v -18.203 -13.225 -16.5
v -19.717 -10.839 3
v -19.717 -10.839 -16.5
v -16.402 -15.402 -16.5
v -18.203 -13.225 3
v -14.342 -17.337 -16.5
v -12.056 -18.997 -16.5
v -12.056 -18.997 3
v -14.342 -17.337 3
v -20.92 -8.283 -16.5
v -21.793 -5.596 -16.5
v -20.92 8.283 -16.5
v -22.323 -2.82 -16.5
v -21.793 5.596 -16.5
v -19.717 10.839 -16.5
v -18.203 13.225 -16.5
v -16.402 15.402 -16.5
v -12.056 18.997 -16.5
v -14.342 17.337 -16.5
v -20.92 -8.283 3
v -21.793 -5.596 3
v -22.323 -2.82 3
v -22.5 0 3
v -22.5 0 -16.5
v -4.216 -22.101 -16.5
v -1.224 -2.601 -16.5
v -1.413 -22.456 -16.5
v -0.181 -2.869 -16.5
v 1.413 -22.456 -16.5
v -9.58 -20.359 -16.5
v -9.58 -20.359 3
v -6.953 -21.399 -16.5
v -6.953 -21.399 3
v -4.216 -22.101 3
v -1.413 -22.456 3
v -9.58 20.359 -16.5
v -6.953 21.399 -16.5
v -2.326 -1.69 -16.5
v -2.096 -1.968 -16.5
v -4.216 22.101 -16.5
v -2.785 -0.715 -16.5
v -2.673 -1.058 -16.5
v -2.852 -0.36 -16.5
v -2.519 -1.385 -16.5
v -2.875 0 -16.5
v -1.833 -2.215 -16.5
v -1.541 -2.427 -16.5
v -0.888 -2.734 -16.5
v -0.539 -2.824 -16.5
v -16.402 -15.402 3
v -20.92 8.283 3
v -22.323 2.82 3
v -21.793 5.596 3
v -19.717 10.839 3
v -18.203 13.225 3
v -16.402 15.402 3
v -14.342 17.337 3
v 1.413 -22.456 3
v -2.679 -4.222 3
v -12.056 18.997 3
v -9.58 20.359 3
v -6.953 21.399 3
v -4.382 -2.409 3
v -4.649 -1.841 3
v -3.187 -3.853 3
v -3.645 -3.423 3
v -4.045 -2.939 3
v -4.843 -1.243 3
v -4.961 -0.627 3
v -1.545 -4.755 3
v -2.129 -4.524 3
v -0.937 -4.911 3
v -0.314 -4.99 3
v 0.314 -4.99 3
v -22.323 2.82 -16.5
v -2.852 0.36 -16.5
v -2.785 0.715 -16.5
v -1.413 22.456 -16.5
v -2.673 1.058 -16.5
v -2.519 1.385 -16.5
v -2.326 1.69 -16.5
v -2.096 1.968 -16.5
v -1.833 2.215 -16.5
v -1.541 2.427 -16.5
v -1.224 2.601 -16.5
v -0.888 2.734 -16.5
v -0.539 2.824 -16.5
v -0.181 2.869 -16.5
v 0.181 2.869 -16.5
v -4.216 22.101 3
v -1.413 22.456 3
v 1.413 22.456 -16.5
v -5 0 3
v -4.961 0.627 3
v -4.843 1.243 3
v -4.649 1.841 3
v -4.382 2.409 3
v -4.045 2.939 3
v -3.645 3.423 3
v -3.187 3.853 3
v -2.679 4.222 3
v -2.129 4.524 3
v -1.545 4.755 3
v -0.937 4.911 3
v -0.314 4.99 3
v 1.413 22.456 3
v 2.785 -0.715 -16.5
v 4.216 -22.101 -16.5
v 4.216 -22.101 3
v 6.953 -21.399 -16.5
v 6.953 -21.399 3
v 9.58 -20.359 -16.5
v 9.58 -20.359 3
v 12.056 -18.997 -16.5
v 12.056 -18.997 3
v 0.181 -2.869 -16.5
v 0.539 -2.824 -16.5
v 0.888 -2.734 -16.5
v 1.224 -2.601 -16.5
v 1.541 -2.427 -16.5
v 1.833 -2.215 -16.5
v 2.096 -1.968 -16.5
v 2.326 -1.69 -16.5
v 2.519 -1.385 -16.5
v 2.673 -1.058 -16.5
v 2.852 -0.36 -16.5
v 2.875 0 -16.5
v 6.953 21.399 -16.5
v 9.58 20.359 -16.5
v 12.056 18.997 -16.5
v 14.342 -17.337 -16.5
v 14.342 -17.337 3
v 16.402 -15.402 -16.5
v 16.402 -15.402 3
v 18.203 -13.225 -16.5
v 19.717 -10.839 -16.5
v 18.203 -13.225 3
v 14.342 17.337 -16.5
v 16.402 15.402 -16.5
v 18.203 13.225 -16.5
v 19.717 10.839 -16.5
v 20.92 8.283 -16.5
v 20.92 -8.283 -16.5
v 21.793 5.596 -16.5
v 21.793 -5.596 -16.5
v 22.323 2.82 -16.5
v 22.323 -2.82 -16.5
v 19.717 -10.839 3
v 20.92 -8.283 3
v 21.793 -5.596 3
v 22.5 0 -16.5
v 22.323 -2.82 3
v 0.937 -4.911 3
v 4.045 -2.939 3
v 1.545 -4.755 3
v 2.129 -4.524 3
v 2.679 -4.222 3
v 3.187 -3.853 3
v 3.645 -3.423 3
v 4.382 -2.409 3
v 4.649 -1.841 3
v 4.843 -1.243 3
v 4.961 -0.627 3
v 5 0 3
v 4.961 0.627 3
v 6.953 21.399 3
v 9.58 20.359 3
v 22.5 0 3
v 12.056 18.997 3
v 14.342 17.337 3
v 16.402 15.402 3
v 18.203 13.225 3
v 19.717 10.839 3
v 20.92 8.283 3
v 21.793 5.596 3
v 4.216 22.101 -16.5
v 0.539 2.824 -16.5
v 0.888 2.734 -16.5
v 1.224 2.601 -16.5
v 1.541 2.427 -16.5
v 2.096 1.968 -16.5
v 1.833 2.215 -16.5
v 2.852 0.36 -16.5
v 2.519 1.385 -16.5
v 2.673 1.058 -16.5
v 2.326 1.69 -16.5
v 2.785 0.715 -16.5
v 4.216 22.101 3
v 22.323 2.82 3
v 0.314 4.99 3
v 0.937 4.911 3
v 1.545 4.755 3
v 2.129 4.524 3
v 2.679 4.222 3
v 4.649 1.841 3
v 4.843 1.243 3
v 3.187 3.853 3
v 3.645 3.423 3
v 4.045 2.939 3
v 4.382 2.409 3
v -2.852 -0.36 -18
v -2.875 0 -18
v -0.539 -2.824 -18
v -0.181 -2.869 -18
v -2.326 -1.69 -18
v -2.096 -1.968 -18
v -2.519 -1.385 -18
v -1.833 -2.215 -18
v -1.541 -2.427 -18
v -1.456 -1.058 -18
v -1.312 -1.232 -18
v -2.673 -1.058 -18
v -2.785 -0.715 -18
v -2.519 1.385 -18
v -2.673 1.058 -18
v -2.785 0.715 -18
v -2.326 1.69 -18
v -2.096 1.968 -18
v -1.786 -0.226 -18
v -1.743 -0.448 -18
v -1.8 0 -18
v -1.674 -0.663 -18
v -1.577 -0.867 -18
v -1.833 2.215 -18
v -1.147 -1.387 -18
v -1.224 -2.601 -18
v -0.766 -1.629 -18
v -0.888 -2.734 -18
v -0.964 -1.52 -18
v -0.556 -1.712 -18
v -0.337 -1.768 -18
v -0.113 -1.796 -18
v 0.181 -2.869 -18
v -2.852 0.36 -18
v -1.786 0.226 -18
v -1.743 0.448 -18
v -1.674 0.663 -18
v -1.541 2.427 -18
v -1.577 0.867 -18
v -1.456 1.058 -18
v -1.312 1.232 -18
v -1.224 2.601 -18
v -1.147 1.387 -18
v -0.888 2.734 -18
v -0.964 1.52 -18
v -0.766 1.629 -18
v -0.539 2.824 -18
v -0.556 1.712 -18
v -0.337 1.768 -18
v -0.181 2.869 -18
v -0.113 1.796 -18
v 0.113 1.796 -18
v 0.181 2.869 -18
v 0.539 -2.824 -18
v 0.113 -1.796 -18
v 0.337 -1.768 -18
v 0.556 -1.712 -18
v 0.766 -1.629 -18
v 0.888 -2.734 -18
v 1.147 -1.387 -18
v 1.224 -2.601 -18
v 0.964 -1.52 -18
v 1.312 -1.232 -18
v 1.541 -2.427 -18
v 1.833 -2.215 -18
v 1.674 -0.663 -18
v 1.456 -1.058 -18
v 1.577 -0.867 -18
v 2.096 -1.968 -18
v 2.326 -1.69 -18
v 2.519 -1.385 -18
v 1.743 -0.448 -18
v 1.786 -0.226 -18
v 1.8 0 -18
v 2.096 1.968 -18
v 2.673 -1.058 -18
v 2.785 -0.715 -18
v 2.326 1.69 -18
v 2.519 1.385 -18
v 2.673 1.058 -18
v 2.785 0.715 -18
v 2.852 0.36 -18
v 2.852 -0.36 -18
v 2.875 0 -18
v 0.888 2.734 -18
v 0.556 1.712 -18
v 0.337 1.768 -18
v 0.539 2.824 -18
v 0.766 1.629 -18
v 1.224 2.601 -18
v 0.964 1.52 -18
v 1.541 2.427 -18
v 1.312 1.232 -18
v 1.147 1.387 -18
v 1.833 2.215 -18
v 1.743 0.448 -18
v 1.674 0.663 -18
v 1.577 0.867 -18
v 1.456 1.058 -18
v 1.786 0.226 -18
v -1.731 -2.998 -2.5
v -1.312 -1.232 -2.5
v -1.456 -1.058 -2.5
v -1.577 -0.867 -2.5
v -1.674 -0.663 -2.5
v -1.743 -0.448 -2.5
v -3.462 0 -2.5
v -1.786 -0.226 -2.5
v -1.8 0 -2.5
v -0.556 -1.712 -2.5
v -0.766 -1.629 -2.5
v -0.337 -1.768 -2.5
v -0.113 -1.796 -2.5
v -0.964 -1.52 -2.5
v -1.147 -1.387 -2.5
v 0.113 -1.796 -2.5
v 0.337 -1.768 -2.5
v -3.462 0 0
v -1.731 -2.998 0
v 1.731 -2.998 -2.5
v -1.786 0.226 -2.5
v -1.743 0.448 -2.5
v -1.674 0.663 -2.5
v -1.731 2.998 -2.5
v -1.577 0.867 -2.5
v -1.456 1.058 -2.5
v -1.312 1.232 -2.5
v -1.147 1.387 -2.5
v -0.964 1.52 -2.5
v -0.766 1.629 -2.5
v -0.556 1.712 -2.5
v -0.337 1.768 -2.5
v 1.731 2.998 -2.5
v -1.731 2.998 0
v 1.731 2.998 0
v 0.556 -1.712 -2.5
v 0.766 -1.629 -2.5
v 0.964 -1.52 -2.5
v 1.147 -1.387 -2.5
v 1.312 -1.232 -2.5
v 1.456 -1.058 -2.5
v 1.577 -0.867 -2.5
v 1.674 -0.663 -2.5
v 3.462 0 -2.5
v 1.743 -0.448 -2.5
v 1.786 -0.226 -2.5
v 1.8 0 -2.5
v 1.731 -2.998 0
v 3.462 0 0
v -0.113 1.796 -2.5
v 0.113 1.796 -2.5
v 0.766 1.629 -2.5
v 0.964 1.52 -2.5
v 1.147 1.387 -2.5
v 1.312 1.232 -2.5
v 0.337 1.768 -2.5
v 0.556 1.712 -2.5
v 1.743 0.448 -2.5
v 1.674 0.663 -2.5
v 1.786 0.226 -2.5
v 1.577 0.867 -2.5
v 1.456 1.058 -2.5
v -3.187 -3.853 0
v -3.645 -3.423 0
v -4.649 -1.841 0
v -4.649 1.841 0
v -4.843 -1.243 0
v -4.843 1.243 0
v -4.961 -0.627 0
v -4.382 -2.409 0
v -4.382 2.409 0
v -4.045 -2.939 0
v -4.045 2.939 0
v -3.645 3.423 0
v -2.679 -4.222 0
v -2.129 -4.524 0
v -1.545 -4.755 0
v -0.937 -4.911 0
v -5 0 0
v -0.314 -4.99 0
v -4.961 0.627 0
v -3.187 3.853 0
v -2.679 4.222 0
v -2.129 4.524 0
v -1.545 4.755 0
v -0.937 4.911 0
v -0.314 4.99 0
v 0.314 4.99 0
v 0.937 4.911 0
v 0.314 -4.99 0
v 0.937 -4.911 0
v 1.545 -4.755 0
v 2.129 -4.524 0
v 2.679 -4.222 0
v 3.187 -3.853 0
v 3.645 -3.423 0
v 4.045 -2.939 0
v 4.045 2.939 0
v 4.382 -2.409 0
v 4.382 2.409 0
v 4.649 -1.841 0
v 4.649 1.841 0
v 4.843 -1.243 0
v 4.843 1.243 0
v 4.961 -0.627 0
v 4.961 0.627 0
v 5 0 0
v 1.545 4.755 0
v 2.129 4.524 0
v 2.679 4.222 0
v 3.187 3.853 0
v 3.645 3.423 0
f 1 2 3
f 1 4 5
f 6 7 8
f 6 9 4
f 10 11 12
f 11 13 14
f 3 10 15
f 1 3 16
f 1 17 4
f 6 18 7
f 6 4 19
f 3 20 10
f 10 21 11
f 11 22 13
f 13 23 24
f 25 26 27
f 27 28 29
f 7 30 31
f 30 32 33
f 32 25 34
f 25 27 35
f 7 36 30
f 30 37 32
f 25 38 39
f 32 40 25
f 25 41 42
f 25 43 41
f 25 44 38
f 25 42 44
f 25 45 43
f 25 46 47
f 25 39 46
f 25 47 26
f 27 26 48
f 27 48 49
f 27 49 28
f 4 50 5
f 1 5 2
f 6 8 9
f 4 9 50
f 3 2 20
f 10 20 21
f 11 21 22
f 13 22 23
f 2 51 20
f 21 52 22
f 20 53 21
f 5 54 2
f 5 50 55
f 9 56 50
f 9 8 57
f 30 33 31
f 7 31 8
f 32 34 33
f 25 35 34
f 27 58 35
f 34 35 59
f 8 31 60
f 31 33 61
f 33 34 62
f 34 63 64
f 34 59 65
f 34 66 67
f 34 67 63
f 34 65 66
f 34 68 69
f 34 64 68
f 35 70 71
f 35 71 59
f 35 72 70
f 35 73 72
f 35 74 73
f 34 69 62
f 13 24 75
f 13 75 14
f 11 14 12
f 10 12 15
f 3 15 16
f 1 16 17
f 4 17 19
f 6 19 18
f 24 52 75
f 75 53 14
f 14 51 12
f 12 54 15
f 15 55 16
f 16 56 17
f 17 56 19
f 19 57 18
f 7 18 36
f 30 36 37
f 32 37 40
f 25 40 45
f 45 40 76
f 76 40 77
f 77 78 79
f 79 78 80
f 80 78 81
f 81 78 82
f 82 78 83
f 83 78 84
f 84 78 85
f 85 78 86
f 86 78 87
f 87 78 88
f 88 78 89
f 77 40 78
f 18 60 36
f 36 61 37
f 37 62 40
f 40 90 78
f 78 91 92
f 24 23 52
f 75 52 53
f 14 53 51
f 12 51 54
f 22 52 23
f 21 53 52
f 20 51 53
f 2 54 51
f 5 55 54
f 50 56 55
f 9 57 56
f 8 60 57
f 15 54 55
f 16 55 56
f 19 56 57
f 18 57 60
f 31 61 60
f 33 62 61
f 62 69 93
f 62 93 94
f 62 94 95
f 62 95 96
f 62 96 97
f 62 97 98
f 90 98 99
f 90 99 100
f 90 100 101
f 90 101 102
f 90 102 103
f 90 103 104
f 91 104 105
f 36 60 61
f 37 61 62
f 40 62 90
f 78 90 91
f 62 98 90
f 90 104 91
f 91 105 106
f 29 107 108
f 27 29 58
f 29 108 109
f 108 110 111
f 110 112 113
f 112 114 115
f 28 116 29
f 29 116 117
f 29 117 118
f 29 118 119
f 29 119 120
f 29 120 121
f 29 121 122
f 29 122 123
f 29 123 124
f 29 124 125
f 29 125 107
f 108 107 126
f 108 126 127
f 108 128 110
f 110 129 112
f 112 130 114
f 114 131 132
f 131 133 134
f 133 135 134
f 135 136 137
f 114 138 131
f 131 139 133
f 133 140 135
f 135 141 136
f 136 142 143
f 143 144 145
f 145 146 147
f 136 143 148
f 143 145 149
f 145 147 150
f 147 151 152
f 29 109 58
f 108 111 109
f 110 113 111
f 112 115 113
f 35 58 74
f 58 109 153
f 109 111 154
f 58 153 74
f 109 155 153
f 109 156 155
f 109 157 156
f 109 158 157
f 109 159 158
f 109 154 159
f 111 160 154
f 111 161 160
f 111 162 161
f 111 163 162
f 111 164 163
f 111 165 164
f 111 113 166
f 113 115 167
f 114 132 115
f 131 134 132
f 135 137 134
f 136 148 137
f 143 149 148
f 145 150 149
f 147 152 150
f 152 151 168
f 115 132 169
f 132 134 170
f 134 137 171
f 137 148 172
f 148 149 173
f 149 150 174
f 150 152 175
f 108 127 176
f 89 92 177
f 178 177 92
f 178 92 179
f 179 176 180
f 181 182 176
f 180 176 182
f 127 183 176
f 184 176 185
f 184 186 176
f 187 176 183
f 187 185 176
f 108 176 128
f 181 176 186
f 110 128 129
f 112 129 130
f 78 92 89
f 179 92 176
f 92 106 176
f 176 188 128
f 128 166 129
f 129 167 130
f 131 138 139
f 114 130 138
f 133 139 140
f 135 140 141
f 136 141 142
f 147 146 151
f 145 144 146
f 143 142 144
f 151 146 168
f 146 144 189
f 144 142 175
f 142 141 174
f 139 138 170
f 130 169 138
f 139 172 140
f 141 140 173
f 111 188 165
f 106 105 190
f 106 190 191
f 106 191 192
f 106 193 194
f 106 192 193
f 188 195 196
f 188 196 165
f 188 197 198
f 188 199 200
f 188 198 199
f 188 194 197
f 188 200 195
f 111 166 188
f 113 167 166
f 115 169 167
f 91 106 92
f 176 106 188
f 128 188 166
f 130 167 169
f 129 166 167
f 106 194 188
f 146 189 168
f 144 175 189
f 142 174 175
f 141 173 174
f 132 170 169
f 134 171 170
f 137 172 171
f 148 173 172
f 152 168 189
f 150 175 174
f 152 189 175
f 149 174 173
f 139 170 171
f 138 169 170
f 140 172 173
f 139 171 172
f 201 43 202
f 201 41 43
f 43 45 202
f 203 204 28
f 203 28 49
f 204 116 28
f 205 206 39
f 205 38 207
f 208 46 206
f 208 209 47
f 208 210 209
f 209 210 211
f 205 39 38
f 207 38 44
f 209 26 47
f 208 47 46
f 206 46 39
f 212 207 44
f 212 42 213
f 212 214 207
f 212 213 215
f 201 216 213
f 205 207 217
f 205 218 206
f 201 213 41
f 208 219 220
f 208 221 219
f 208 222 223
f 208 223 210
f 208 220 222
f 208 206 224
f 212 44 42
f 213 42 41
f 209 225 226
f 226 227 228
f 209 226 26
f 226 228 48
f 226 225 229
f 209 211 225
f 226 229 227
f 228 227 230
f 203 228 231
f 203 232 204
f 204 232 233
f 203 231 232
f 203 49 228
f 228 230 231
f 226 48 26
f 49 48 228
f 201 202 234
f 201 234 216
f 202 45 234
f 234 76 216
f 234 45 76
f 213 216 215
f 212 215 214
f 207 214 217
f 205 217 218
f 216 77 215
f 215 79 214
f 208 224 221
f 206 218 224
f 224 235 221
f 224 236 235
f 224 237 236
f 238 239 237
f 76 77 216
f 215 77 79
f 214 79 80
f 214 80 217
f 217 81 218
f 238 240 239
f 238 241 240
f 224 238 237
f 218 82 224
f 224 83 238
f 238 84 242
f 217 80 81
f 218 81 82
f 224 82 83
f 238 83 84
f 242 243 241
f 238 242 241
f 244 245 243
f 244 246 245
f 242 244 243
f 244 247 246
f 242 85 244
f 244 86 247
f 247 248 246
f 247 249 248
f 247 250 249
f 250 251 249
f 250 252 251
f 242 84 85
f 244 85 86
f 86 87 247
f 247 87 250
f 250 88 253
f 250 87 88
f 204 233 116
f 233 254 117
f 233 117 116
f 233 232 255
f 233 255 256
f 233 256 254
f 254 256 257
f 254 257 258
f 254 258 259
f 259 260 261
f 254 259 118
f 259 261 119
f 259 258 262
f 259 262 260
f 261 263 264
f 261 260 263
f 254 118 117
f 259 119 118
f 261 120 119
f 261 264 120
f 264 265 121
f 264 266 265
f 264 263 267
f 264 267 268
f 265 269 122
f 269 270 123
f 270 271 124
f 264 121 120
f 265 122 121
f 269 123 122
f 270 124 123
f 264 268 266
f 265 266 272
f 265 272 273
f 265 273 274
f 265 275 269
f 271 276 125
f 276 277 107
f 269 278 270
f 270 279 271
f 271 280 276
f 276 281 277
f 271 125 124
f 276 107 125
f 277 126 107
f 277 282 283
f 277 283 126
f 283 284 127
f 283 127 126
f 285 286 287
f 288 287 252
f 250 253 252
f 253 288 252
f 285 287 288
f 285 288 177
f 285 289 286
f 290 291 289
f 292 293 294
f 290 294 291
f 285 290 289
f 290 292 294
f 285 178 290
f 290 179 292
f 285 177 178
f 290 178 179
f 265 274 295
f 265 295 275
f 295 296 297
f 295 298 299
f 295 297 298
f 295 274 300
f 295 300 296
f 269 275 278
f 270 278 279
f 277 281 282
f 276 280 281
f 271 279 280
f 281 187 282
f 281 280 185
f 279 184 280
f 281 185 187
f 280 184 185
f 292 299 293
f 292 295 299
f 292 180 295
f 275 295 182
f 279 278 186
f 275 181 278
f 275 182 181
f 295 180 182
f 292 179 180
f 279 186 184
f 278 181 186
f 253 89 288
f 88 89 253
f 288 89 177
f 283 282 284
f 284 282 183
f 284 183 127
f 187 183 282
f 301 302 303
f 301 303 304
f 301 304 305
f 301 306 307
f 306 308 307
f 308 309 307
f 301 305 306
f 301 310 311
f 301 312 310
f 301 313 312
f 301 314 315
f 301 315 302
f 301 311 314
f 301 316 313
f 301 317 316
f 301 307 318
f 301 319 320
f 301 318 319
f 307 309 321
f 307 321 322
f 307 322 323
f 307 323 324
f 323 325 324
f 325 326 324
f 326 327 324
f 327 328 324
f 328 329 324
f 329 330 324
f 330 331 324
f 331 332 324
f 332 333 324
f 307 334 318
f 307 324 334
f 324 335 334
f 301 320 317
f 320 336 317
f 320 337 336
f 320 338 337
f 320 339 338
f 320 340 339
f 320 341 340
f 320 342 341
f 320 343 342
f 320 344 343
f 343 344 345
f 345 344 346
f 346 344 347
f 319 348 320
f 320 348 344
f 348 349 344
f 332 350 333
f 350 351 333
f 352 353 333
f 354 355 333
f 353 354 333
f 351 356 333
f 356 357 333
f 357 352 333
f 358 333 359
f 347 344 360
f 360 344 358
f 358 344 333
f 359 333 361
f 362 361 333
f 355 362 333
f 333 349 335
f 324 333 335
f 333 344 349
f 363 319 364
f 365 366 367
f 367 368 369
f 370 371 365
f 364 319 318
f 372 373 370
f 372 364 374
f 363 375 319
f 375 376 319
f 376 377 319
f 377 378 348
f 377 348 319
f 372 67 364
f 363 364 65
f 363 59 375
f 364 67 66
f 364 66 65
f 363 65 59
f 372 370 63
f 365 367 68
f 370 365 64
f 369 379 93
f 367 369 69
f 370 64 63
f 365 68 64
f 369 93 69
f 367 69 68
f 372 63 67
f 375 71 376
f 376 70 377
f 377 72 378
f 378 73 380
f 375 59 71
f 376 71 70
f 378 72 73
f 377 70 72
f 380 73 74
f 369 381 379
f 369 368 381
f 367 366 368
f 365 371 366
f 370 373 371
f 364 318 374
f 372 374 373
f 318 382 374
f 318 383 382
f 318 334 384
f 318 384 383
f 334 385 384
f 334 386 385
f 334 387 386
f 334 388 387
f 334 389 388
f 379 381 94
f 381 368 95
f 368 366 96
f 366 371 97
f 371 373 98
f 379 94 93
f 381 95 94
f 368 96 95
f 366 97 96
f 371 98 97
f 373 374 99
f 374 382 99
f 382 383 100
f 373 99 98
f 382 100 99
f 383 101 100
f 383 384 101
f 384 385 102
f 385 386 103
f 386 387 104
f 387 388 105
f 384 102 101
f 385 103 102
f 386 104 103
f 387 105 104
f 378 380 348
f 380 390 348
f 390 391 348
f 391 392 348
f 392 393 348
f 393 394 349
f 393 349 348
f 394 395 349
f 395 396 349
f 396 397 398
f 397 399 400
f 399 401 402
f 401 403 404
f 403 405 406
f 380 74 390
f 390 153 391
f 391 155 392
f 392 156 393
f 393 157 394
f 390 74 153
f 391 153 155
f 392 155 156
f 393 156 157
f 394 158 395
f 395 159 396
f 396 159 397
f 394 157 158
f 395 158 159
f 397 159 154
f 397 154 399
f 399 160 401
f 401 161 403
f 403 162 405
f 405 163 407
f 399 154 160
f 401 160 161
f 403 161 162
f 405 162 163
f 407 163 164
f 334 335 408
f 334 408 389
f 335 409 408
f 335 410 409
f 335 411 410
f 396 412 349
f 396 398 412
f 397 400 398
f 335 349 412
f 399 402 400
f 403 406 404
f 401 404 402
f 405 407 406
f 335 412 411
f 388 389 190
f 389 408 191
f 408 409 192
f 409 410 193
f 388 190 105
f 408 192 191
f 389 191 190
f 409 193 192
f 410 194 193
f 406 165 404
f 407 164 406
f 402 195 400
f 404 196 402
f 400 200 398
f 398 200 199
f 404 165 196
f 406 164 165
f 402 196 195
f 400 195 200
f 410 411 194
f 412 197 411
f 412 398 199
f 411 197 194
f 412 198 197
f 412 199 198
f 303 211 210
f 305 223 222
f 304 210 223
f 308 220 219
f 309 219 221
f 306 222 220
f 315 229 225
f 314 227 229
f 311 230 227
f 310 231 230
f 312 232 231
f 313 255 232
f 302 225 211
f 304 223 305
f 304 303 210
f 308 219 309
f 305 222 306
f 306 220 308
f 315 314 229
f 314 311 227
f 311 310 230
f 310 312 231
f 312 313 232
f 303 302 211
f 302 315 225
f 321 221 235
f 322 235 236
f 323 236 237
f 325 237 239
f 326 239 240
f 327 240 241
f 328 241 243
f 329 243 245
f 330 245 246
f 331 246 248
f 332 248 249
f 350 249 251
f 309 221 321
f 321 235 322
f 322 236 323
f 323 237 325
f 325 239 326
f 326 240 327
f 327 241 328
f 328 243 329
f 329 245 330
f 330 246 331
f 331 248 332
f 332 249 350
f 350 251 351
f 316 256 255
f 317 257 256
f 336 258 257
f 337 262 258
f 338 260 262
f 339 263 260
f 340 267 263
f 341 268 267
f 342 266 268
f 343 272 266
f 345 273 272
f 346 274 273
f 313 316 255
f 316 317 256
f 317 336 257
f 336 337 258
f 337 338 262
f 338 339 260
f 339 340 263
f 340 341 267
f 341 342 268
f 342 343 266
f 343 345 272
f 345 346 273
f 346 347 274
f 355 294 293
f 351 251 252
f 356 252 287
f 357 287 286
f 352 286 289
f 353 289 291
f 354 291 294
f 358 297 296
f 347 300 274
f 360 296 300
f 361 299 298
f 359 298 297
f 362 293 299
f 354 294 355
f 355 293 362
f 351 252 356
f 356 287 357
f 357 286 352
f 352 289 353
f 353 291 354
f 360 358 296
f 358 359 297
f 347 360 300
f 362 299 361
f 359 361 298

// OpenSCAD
$fn = 50;


difference() {
	union() {
		translate(v = [0, 0, -16.5000000000]) {
			cylinder(h = 19.5000000000, r = 22.5000000000);
		}
		#translate(v = [0, 0, -18.0000000000]) {
			cylinder(h = 18, r = 2.8750000000);
		}
	}
	union() {
		translate(v = [0, 0, 0]) {
			rotate(a = [0, 0, 0]) {
				difference() {
					union() {
						translate(v = [0, 0, -2.5000000000]) {
							linear_extrude(height = 2.5000000000) {
								polygon(points = [[3.4620000000, 0.0000000000], [1.7310000000, 2.9981799479], [-1.7310000000, 2.9981799479], [-3.4620000000, 0.0000000000], [-1.7310000000, -2.9981799479], [1.7310000000, -2.9981799479]]);
							}
						}
					}
					union();
				}
			}
		}
		#cylinder(h = 3, r = 5.0000000000);
		#translate(v = [0, 0, -100.0000000000]) {
			cylinder(h = 200, r = 1.8000000000);
		}
	}
}
